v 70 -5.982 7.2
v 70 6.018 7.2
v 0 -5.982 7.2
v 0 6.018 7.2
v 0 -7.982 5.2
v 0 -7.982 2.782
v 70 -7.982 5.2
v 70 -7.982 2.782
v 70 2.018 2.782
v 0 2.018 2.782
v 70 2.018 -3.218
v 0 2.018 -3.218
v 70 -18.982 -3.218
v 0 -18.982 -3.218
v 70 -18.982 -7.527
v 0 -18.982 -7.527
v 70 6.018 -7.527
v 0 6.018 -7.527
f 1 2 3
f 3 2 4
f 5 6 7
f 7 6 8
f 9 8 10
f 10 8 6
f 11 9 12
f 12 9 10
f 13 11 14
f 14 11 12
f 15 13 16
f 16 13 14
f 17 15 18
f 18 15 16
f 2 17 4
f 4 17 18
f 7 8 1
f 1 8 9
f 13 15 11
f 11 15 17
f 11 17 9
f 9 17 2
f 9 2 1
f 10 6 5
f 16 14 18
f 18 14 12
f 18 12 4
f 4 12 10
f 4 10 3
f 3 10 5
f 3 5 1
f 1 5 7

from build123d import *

# Parameters (mm, degrees)
BOSS_EXTRUDE1_DEPTH = 70
CHAMFER1_SIZE       = 2


with BuildPart() as part:
    # Sketch1 → Boss-Extrude1 (new body)
    with BuildSketch(Plane(origin=(0, 0, 0), x_dir=(0, 0, -1), z_dir=(1, 0, 0))):
        Polygon((-7.2, 6.018181818), (7.527272727, 6.018181818), (7.527272727, -10.381818182), (7.527272727, -18.981818182), (3.218181818, -18.981818182), (3.218181818, -7.981818182), (3.218181818, 2.018181818), (-2.781818182, 2.018181818), (-2.781818182, -7.981818182), (-7.2, -7.981818182), align=None)
    extrude(amount=BOSS_EXTRUDE1_DEPTH)

    # Chamfer1
    chamfer1_edges = [part.edges().sort_by_distance(p)[0] for p in [
        (35, -7.981818182, 7.2),
    ]]
    chamfer(chamfer1_edges, length=CHAMFER1_SIZE)


solid = part.part
